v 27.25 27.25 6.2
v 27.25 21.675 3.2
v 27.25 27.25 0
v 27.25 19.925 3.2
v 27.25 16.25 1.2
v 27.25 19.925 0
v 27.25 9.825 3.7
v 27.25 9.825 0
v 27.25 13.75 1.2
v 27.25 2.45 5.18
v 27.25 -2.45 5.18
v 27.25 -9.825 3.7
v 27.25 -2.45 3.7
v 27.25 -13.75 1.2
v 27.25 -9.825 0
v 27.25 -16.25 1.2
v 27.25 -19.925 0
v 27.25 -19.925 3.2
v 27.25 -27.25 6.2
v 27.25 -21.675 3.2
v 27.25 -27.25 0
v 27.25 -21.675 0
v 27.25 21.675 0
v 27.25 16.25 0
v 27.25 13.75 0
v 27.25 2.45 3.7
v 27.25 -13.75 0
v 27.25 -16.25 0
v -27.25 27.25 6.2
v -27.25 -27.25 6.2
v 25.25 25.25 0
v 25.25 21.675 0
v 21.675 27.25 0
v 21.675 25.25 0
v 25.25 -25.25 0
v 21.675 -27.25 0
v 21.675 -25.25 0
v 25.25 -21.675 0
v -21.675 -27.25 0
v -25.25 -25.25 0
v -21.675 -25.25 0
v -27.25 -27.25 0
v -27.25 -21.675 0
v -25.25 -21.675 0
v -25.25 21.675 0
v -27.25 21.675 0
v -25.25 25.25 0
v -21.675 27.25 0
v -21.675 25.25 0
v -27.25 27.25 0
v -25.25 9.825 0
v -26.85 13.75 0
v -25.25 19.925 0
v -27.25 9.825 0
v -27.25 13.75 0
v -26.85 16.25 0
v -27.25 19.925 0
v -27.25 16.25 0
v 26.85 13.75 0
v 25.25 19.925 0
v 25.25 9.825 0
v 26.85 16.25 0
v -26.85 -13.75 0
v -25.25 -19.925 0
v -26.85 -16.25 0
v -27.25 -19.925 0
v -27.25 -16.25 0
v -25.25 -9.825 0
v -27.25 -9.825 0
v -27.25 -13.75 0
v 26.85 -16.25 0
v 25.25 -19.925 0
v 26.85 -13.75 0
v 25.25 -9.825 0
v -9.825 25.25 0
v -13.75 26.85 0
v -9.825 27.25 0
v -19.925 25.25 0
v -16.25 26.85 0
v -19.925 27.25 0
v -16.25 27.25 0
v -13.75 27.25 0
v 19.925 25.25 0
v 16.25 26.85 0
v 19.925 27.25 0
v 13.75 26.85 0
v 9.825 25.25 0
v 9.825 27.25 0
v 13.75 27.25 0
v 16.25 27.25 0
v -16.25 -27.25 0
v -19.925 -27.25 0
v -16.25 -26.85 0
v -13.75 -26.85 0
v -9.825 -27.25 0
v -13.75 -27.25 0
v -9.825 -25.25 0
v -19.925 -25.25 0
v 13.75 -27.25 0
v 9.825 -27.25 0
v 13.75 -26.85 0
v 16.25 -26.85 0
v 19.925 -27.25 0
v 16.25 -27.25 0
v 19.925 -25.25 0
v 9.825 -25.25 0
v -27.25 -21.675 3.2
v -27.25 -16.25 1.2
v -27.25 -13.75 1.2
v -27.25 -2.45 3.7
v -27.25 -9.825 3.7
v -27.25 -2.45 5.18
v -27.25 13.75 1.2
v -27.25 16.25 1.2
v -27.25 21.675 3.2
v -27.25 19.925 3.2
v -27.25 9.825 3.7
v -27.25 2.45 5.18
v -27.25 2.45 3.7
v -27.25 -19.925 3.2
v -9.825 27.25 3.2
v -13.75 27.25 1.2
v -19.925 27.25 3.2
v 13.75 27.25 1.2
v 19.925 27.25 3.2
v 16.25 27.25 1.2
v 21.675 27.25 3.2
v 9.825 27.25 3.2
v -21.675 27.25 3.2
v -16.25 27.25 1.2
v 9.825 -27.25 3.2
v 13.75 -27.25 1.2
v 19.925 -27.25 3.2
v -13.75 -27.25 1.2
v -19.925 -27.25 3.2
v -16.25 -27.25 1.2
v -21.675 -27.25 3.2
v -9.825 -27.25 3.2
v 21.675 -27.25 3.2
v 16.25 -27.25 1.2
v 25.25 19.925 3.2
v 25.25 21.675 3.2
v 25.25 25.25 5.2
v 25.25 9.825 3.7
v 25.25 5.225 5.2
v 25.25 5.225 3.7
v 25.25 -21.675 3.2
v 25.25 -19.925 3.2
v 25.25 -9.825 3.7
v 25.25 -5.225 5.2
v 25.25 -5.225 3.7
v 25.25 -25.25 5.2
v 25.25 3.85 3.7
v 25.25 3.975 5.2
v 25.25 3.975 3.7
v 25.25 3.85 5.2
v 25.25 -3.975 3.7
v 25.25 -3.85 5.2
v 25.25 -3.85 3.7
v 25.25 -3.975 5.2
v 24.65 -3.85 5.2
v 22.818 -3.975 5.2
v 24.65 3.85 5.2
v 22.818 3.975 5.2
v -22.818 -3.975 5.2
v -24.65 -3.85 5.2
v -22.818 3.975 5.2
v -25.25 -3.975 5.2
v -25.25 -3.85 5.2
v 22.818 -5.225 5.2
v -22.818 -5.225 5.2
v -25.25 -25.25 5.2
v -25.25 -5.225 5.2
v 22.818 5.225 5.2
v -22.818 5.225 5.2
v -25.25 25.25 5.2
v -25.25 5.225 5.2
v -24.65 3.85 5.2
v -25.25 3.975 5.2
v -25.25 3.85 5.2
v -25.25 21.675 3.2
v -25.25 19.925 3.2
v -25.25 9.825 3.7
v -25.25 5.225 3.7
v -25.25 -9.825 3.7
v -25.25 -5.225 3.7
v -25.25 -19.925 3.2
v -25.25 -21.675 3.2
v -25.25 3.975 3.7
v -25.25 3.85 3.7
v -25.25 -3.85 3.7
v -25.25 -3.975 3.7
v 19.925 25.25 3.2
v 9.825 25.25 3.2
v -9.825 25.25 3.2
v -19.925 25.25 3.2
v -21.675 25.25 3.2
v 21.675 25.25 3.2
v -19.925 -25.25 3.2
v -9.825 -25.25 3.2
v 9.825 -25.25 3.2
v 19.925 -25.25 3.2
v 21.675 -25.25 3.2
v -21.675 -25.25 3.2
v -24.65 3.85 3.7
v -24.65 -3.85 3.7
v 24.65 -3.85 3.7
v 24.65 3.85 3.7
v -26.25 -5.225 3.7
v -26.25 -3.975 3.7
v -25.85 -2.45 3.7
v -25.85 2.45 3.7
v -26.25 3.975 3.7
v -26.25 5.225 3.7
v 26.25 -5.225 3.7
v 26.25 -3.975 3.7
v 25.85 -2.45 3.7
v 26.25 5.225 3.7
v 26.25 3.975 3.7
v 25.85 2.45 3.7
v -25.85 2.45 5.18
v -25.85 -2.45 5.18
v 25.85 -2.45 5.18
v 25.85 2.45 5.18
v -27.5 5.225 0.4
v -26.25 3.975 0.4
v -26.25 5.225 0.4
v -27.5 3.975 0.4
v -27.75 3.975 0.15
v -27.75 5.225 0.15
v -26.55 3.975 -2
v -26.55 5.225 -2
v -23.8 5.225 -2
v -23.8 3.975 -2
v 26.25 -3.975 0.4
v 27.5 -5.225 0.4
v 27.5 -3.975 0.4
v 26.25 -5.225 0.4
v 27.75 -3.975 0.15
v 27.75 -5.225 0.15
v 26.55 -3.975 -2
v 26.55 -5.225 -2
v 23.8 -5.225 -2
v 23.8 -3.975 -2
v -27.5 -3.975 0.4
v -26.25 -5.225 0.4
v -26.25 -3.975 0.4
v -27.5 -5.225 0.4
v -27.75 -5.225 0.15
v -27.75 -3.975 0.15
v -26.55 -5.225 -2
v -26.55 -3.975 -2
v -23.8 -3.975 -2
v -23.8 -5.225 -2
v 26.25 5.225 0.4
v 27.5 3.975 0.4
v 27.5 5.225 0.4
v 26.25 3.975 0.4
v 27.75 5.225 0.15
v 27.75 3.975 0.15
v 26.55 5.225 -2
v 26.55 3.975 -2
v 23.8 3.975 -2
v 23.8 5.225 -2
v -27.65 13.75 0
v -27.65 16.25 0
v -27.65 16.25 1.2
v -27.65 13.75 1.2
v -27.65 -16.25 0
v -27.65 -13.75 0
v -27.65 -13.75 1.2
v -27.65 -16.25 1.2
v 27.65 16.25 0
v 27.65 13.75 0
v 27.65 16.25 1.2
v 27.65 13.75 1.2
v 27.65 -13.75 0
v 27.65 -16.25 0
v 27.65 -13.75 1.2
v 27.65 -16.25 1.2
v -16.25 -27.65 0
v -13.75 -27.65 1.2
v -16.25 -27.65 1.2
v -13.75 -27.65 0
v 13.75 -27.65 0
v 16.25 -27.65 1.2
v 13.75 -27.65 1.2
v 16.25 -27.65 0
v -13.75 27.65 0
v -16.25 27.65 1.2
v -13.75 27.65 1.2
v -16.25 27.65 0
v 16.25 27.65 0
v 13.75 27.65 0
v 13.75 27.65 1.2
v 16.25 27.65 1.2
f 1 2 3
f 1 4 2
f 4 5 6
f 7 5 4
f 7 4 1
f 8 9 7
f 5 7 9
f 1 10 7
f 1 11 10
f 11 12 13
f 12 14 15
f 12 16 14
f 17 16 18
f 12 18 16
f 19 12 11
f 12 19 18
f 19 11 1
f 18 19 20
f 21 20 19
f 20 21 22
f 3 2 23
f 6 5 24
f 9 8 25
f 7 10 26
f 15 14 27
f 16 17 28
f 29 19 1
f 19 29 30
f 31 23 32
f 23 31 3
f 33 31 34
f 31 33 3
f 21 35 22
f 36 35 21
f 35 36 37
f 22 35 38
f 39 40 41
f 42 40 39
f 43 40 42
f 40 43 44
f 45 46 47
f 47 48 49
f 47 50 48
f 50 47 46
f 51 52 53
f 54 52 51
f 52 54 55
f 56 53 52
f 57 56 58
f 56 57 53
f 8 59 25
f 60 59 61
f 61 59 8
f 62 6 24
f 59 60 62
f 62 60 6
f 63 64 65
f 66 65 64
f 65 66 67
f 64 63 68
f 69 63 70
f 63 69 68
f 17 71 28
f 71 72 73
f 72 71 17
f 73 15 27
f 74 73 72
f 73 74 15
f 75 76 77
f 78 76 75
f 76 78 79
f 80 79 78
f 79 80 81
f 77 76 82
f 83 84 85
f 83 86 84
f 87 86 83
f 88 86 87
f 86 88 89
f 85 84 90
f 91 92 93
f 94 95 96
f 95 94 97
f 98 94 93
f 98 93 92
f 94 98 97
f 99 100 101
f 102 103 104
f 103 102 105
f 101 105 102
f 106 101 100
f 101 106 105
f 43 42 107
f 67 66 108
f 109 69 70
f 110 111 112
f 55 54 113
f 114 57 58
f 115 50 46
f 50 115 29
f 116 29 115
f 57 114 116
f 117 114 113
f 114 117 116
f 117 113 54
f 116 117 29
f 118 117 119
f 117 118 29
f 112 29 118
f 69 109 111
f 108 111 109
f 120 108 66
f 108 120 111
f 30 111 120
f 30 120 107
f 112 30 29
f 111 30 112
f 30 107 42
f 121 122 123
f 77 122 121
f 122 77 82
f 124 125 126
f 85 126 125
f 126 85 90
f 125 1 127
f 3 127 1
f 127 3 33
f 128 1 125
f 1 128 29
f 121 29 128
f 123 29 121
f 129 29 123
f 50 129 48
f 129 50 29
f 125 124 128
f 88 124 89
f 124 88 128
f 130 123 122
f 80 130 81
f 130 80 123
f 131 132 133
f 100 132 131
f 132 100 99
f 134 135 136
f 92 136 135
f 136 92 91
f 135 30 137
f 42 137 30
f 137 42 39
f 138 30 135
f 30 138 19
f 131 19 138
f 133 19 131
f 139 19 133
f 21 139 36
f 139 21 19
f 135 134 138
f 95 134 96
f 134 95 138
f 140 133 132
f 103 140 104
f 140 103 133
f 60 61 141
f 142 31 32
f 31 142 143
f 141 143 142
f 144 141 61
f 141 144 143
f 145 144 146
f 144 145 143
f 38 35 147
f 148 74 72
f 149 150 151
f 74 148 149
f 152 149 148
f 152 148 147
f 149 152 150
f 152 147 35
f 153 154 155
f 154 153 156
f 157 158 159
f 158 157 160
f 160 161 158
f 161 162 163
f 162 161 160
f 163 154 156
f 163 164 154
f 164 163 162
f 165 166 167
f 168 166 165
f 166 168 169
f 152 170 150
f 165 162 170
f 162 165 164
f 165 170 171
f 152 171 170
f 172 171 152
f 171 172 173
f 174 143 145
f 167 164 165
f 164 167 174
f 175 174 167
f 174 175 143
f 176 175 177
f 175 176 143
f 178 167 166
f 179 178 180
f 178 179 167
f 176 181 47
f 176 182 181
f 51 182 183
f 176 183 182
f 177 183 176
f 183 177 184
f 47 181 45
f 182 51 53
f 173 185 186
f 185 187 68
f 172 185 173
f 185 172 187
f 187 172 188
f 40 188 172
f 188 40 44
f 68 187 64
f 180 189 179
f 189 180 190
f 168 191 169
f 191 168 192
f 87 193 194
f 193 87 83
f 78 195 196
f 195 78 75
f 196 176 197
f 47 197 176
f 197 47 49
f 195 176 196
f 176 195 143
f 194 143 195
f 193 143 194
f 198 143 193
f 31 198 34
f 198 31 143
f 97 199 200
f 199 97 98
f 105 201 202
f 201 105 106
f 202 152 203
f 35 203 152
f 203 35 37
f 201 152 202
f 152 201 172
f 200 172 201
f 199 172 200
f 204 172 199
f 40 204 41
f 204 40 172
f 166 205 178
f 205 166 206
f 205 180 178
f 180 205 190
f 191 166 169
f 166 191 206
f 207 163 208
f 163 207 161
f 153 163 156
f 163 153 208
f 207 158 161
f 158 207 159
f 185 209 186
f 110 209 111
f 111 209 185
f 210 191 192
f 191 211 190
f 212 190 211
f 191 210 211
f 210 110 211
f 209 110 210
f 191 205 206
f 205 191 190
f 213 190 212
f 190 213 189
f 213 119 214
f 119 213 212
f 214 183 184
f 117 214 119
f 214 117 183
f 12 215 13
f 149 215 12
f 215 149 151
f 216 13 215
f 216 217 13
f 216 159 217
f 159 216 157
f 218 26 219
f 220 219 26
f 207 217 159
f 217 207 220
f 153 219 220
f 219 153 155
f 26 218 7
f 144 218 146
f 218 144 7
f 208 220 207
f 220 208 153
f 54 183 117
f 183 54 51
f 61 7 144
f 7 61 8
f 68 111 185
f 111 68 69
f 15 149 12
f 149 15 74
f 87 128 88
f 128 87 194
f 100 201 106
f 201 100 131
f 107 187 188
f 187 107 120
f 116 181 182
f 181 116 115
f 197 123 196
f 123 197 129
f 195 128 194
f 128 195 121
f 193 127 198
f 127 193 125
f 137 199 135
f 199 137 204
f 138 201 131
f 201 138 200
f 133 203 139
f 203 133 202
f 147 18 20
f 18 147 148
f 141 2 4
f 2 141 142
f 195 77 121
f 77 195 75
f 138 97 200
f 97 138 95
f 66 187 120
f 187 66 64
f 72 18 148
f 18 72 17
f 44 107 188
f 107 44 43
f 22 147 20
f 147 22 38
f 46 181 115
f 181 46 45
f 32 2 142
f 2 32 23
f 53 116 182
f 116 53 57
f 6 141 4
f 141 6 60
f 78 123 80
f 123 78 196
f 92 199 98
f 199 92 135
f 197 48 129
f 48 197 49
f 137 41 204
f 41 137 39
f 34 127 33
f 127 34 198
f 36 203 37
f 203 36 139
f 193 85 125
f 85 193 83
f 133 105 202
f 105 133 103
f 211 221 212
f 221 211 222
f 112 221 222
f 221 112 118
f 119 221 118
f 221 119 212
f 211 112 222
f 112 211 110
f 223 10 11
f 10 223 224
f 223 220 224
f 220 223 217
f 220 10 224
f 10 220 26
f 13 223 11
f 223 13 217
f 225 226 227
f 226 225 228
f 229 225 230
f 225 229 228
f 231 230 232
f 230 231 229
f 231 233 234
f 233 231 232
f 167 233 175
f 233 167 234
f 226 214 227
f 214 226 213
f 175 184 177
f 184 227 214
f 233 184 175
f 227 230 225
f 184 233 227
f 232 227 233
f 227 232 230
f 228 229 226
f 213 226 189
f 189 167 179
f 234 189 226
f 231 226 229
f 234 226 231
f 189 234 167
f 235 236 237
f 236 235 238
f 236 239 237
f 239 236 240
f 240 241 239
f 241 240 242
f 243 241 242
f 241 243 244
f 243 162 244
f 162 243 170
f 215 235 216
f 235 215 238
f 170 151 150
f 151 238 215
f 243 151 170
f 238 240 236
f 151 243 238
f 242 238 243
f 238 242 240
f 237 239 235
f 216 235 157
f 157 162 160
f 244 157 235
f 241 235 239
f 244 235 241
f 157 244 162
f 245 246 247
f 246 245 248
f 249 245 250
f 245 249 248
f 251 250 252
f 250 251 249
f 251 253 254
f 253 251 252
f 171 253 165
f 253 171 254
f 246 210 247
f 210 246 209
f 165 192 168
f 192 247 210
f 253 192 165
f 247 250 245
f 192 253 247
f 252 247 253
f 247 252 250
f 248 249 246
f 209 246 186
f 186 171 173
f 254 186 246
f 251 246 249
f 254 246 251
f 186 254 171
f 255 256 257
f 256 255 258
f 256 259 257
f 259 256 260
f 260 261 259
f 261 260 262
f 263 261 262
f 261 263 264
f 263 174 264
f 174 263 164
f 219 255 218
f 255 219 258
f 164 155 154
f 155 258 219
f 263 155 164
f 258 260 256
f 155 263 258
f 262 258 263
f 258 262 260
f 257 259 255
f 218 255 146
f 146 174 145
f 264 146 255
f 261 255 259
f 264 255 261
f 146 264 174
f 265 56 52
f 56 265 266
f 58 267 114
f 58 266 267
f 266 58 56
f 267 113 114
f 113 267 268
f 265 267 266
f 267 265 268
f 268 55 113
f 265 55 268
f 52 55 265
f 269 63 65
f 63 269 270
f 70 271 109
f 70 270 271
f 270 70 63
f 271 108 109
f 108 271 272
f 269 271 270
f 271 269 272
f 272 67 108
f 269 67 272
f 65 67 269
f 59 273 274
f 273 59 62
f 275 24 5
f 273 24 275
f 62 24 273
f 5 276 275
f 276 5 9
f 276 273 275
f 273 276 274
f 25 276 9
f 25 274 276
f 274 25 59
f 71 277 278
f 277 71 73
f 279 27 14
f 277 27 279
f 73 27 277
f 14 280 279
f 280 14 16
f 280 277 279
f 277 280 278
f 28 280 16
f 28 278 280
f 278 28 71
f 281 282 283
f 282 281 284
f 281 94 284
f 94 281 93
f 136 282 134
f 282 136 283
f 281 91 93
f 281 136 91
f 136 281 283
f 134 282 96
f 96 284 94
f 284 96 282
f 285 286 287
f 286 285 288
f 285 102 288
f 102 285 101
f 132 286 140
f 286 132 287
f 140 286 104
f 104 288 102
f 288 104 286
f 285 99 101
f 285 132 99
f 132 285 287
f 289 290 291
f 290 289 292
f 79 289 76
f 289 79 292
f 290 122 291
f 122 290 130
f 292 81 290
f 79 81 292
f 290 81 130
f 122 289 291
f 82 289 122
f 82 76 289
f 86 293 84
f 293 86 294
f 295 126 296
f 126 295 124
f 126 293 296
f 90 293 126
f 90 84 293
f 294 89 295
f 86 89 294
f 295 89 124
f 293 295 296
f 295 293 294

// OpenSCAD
//$fn=256;
$fn=50;

wymiarZewX = 54.5;
wymiarZewY = 54.5;
wymiarZewZ = 6.2;
wymiarWewX = 51.7;
wymiarWewY = 51.7;
gruboscScianki = 4;

boxMiniOuterX = 2.6;
boxMiniOuterY = 7.7;
boxMiniOuterZ = 2.0;
boxMiniInnerX = 1.4;
boxMiniInnerY = 4.9;
boxMiniInnerZ = 3.18;    

zaslepka();

module baza()
{
    translate([0,0,wymiarZewZ/2])
    {
        difference()
        {
            cube(size = [wymiarZewX,wymiarZewY,wymiarZewZ], center = true);

            translate([0,0,-1])
            {
                cube(size = [wymiarZewX - gruboscScianki,wymiarZewY - gruboscScianki,wymiarZewZ], center = true);
            }
        }
    }
    
    //bloczki zew
    translate([-wymiarZewX/2,-boxMiniOuterY/2,boxMiniOuterZ/2])
    {
        cube(size = [boxMiniOuterX, boxMiniOuterY,5.0], center = false);
    }
    translate([wymiarZewX/2 - boxMiniOuterX,-boxMiniOuterY/2,boxMiniOuterZ/2])
    {
        cube(size = [boxMiniOuterX, boxMiniOuterY,5.0], center = false);
    }
}

module zaslepka()
{
    difference()
    {
        baza();
        wyciecia();
    }
   
    haczyki();
    
    wypustki();
}

module haczyki()
{
    // haczyki
    gruboscPizdryka = 1.25;
    dlugoscPizdryka = 7.7;
    offsetPidryka = 4.6;

    translate([-wymiarZewX / 2 + 1, offsetPidryka, dlugoscPizdryka - (0.5 * gruboscScianki)])
      rotate([0, 180, 90]) haczyk(haczykWidth = gruboscPizdryka, haczykHeight = dlugoscPizdryka);
    translate([wymiarZewX / 2 - 1, -offsetPidryka, dlugoscPizdryka - (0.5 *  gruboscScianki)])
      rotate([0, 180, 270]) haczyk(haczykWidth = gruboscPizdryka, haczykHeight = dlugoscPizdryka);
    translate([-wymiarZewX / 2 + 1, -offsetPidryka, dlugoscPizdryka - (0.5 *  gruboscScianki)])
      rotate([0, 180, 90]) haczyk(haczykWidth = gruboscPizdryka, haczykHeight = dlugoscPizdryka);
    translate([wymiarZewX / 2 - 1, offsetPidryka, dlugoscPizdryka - (0.5 *  gruboscScianki)])
      rotate([0, 180, 270]) haczyk(haczykWidth = gruboscPizdryka, haczykHeight = dlugoscPizdryka);
}

module haczyk(haczykWidth = 5, haczykDepth = 5, haczykHeight = 5, lipDepth = 1.5, lipHeight = 2.4)
{
    // haczyk
    translate([-haczykWidth/2, -(haczykDepth-lipDepth), 0]) rotate([90, 0, 90])
    linear_extrude(height = haczykWidth, convexity = 10)
    polygon(points = [
                [0, 0], 
                [haczykDepth - lipDepth, 0],
                [haczykDepth - lipDepth, haczykHeight - lipHeight],
                [haczykDepth - 0.25, haczykHeight - lipHeight],
                [haczykDepth, haczykHeight - lipHeight + 0.25],
                [haczykDepth - lipDepth * 0.8, haczykHeight],
                [(haczykDepth - lipDepth) * 0.3, haczykHeight] 
            ], 
            paths=[[0,1,2,3,4,5,6]]
    );
}

module wypustki()
{
    // wypustki
    offsetWypustMini = 15.0;
    
    translate([-wymiarZewX / 2, offsetWypustMini, 0.6])
      rotate([0, 180, 90]) cube (size = [2.5, 0.8, 1.2], center = true);
    translate([-wymiarZewX / 2, -offsetWypustMini, 0.6])
      rotate([0, 180, 90]) cube (size = [2.5, 0.8, 1.2], center = true);
    translate([wymiarZewX / 2, offsetWypustMini, 0.6])
      rotate([0, 180, 90]) cube (size = [2.5, 0.8, 1.2], center = true);
    translate([wymiarZewX / 2, -offsetWypustMini, 0.6])
      rotate([0, 180, 90]) cube (size = [2.5, 0.8, 1.2], center = true);
    translate([-offsetWypustMini, -wymiarZewY / 2, 0.6])
      rotate([0, 180, 270]) cube (size = [0.8, 2.5, 1.2], center = true);
    translate([offsetWypustMini, -wymiarZewY / 2, 0.6])
      rotate([0, 180, 270]) cube (size = [0.8, 2.5, 1.2], center = true);
    translate([-offsetWypustMini, wymiarZewY / 2, 0.6])
      rotate([0, 180, 270]) cube (size = [0.8, 2.5, 1.2], center = true);
    translate([offsetWypustMini, wymiarZewY / 2, 0.6])
      rotate([0, 180, 270]) cube (size = [0.8, 2.5, 1.2], center = true);
}

module wyciecia()
{
    // wyciecia
    offsetWnekaMini = 20.8;
    wnekaSzerokoscDuza = 19.65;
    wnekaSzerokoscMala = 1.75;
    wnekaWysokoscA = 3.70; // wneka B (pod zaczep) x 2
    wnekaWysokoscB = 3.20; // wneka A x 2 
    wnekaWysokoscC = wnekaWysokoscB; // mini wneka x 8

    // wycinki szerokie
    translate([0,0,wnekaWysokoscA/2])
    {
       cube(size = [wymiarZewX + 10, wnekaSzerokoscDuza, wnekaWysokoscA], center = true);
    }
    translate([0,0,wnekaWysokoscB/2])
    {
        cube(size = [wnekaSzerokoscDuza, wymiarZewY + 10, wnekaWysokoscB], center = true);
    }
    
    // wycinki wąskie
    translate([0,-offsetWnekaMini,wnekaWysokoscC/2])
    {
       cube(size = [wymiarZewX + 10, wnekaSzerokoscMala, wnekaWysokoscC], center = true);
    }
    translate([0,offsetWnekaMini,wnekaWysokoscC/2])
    {
       cube(size = [wymiarZewX + 10, wnekaSzerokoscMala, wnekaWysokoscC], center = true);
    }
    translate([-offsetWnekaMini,0,wnekaWysokoscC/2])
    {
       cube(size = [wnekaSzerokoscMala, wymiarZewY + 10, wnekaWysokoscC], center = true);
    }
    translate([offsetWnekaMini,0,wnekaWysokoscC/2])
    {
       cube(size = [wnekaSzerokoscMala, wymiarZewY + 10, wnekaWysokoscC], center = true);
    }
    
    // bloczki wew
    translate([-wymiarZewX/2,-boxMiniInnerY/2,boxMiniOuterZ])
    {
        cube(size = [boxMiniInnerX, boxMiniInnerY,boxMiniInnerZ], center = false);
    }
    translate([wymiarZewX/2 - boxMiniInnerX, -boxMiniInnerY/2,boxMiniOuterZ])
    {
        cube(size = [boxMiniInnerX, boxMiniInnerY,boxMiniInnerZ], center = false);
    }

}
